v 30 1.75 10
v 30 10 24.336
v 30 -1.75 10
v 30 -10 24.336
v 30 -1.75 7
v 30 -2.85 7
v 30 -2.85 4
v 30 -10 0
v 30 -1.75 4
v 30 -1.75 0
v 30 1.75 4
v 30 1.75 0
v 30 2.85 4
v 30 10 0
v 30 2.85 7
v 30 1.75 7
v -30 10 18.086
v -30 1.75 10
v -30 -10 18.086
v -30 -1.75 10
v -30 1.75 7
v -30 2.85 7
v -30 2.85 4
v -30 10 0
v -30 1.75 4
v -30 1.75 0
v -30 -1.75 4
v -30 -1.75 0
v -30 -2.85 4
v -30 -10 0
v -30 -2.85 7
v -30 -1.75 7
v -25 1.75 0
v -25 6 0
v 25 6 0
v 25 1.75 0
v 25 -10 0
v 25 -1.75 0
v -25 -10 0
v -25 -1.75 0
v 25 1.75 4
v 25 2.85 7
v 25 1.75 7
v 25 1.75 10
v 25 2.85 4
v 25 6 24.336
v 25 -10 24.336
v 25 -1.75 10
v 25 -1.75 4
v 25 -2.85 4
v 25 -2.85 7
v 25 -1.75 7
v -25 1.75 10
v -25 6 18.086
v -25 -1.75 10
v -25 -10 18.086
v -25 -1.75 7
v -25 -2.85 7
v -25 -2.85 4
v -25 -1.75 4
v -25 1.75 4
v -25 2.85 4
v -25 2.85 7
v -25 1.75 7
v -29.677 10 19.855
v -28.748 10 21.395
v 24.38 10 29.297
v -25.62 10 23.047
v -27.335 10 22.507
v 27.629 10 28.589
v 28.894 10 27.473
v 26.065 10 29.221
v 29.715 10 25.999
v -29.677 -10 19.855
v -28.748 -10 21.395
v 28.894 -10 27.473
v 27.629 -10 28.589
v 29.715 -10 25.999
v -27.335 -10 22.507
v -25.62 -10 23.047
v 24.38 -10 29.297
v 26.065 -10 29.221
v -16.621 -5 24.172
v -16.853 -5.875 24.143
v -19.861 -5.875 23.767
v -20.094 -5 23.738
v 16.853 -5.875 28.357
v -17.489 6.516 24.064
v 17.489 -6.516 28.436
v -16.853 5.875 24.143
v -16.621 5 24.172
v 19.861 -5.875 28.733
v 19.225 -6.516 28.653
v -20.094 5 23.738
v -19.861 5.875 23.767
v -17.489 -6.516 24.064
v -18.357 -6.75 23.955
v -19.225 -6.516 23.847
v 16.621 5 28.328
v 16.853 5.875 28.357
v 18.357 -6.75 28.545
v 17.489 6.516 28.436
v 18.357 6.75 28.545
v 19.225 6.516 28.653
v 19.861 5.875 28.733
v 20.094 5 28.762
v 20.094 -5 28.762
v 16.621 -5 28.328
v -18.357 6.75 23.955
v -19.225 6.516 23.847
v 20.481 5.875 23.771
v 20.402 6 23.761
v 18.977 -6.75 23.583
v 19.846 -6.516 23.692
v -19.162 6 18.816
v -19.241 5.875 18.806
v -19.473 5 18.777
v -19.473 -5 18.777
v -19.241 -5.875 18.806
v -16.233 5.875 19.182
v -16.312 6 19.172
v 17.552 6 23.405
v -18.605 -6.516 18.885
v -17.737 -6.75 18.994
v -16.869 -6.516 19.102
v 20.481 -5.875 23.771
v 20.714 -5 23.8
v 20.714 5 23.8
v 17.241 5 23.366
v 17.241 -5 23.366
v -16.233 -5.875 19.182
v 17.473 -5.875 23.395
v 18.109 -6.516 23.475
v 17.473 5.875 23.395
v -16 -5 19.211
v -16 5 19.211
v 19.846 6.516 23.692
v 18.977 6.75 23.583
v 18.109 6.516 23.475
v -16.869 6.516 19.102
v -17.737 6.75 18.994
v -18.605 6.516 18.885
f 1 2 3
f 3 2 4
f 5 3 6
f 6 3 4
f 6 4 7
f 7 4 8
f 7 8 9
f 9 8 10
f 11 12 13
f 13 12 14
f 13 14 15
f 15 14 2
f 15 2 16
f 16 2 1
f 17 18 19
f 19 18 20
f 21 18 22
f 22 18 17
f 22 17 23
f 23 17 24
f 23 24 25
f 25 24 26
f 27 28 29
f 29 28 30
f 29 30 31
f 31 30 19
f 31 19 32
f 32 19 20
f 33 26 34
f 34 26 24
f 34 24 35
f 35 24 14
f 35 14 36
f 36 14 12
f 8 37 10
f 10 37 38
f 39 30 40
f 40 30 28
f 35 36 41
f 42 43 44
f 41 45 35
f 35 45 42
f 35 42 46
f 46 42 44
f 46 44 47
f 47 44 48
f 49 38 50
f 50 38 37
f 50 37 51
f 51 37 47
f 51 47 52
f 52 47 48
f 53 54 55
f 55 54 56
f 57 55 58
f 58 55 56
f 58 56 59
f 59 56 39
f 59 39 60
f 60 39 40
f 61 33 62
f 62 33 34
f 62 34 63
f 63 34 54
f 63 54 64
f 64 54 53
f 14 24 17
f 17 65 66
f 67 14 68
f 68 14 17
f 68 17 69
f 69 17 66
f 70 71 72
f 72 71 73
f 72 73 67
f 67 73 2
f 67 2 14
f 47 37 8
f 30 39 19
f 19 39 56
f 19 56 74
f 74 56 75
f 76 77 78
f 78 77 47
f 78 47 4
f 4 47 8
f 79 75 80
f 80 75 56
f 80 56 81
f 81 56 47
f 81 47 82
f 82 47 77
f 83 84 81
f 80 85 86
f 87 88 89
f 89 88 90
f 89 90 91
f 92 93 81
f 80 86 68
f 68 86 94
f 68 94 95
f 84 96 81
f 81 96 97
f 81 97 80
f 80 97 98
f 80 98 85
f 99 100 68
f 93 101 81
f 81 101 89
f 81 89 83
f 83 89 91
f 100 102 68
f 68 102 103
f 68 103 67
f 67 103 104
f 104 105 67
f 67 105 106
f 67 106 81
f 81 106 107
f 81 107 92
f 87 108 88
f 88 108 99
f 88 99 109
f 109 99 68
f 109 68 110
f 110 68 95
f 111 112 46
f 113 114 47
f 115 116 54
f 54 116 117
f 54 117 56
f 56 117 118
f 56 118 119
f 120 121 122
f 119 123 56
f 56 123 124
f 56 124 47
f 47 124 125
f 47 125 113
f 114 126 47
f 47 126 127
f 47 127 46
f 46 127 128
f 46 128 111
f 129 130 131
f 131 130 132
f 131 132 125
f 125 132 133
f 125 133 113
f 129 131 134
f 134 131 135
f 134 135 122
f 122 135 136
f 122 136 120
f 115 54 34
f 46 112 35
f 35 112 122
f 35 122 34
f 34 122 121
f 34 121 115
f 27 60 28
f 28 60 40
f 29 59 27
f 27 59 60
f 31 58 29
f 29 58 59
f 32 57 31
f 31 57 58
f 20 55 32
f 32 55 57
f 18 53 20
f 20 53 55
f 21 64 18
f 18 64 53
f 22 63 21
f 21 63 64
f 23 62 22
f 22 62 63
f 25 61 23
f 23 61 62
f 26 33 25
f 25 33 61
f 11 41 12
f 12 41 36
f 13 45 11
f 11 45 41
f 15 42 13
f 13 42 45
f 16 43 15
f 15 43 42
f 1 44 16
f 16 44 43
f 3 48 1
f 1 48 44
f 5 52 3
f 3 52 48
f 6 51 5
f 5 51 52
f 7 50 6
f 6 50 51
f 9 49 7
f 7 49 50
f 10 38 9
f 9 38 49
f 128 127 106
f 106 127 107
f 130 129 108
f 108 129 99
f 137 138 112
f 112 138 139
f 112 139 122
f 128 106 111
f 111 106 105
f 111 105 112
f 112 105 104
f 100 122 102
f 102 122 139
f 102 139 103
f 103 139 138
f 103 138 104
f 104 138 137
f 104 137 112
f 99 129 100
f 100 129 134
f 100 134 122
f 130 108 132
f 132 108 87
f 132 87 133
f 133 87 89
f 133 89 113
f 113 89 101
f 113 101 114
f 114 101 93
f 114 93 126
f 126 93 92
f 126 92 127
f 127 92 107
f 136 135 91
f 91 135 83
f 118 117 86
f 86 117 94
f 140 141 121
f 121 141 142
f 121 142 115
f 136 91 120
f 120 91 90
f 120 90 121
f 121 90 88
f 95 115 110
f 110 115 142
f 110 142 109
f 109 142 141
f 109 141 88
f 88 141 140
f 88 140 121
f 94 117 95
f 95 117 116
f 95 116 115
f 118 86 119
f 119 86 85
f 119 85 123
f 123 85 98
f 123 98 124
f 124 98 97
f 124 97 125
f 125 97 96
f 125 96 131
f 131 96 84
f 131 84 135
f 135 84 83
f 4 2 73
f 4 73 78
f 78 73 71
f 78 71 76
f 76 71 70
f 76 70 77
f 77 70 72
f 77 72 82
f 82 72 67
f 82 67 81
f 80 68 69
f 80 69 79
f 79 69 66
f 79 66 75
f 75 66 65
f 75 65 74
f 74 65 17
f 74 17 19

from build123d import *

# Parameters (mm, degrees)
SKETCH1_W               = 60
SKETCH1_H               = 20
BOSS_EXTRUDE1_DEPTH     = 30
CUT_EXTRUDE1_DEPTH      = 47.904157598
CUT_EXTRUDE2_START      = -4
CUT_EXTRUDE2_DEPTH      = 43.904157598
CUT_EXTRUDE3_DEPTH      = 68.823299831
CUT_EXTRUDE3_DEPTH_BACK = 68.823299831
SKETCH5_R               = 1.75
CUT_EXTRUDE4_DEPTH      = 44.27017093
CUT_EXTRUDE5_DEPTH      = 5
FILLET1_R               = 5


with BuildPart() as part:
    # Sketch1 → Boss-Extrude1 (new body)
    with BuildSketch(Plane.XY):
        Rectangle(SKETCH1_W, SKETCH1_H)
    extrude(amount=BOSS_EXTRUDE1_DEPTH)

    # Sketch2 → Cut-Extrude1 (cut, through all)
    with BuildSketch(Plane(origin=(0, 10, 0), x_dir=(1, 0, 0), z_dir=(0, 1, 0))):
        Polygon((-30, -30), (30, -30), (-30, -22.5), align=None)
    extrude(amount=-CUT_EXTRUDE1_DEPTH, mode=Mode.SUBTRACT)

    # Sketch3 → Cut-Extrude2 (cut, through all)
    with BuildSketch(Plane(origin=(0, 10, 0), x_dir=(1, 0, 0), z_dir=(0, 1, 0)).offset(CUT_EXTRUDE2_START)):
        Polygon((-25, 0), (25, 0), (25, -24.336088907), (-25, -18.086088907), align=None)
    extrude(amount=-CUT_EXTRUDE2_DEPTH, mode=Mode.SUBTRACT)

    # Sketch4 → Cut-Extrude3 (cut, two sides: drawn at the far end of the back side and taken through both)
    with BuildSketch(Plane.ZY.offset(30).offset(-CUT_EXTRUDE3_DEPTH_BACK)):
        Polygon((4, 1.75), (0, 1.75), (0, -1.75), (4, -1.75), (4, -2.85), (7, -2.85), (7, -1.75), (10, -1.75), (10, 1.75), (7, 1.75), (7, 2.85), (4, 2.85), align=None)
    extrude(amount=CUT_EXTRUDE3_DEPTH + CUT_EXTRUDE3_DEPTH_BACK, mode=Mode.SUBTRACT)

    # Sketch5 → Cut-Extrude4 (cut, through all)
    with BuildSketch(Plane(origin=(-3.230769231, 0, 25.846153846), x_dir=(0.9922778767136677, 0, 0.12403473458920845), z_dir=(-0.12403473458920845, 0, 0.9922778767136677))):
        with Locations((21.755911783, 0)):
            Circle(SKETCH5_R)
        with Locations((-15.244088217, 0)):
            Circle(SKETCH5_R)
    extrude(amount=-CUT_EXTRUDE4_DEPTH, mode=Mode.SUBTRACT)

    # Sketch6 → Cut-Extrude5 (cut)
    with BuildSketch(Plane(origin=(-3.230769231, 0, 25.846153846), x_dir=(0.9922778767136677, 0, 0.12403473458920845), z_dir=(-0.12403473458920845, 0, 0.9922778767136677))):
        with BuildLine():
            Line((-13.494088217, 5), (-13.494088217, -5))
            ThreePointArc((-13.494088217, -5), (-15.244088217, -6.75), (-16.994088217, -5))
            Line((-16.994088217, -5), (-16.994088217, 5))
            ThreePointArc((-16.994088217, 5), (-15.244088217, 6.75), (-13.494088217, 5))
        make_face()
        with BuildLine():
            Line((20.005911783, 5), (20.005911783, -5))
            ThreePointArc((20.005911783, -5), (21.755911783, -6.75), (23.505911783, -5))
            Line((23.505911783, -5), (23.505911783, 5))
            ThreePointArc((23.505911783, 5), (21.755911783, 6.75), (20.005911783, 5))
        make_face()
    extrude(amount=-CUT_EXTRUDE5_DEPTH, mode=Mode.SUBTRACT)

    # Fillet1
    fillet1_edges = [part.edges().sort_by_distance(p)[0] for p in [
        (-30, 0, 22.5),
        (30, 0, 30),
    ]]
    fillet(fillet1_edges, radius=FILLET1_R)


solid = part.part
